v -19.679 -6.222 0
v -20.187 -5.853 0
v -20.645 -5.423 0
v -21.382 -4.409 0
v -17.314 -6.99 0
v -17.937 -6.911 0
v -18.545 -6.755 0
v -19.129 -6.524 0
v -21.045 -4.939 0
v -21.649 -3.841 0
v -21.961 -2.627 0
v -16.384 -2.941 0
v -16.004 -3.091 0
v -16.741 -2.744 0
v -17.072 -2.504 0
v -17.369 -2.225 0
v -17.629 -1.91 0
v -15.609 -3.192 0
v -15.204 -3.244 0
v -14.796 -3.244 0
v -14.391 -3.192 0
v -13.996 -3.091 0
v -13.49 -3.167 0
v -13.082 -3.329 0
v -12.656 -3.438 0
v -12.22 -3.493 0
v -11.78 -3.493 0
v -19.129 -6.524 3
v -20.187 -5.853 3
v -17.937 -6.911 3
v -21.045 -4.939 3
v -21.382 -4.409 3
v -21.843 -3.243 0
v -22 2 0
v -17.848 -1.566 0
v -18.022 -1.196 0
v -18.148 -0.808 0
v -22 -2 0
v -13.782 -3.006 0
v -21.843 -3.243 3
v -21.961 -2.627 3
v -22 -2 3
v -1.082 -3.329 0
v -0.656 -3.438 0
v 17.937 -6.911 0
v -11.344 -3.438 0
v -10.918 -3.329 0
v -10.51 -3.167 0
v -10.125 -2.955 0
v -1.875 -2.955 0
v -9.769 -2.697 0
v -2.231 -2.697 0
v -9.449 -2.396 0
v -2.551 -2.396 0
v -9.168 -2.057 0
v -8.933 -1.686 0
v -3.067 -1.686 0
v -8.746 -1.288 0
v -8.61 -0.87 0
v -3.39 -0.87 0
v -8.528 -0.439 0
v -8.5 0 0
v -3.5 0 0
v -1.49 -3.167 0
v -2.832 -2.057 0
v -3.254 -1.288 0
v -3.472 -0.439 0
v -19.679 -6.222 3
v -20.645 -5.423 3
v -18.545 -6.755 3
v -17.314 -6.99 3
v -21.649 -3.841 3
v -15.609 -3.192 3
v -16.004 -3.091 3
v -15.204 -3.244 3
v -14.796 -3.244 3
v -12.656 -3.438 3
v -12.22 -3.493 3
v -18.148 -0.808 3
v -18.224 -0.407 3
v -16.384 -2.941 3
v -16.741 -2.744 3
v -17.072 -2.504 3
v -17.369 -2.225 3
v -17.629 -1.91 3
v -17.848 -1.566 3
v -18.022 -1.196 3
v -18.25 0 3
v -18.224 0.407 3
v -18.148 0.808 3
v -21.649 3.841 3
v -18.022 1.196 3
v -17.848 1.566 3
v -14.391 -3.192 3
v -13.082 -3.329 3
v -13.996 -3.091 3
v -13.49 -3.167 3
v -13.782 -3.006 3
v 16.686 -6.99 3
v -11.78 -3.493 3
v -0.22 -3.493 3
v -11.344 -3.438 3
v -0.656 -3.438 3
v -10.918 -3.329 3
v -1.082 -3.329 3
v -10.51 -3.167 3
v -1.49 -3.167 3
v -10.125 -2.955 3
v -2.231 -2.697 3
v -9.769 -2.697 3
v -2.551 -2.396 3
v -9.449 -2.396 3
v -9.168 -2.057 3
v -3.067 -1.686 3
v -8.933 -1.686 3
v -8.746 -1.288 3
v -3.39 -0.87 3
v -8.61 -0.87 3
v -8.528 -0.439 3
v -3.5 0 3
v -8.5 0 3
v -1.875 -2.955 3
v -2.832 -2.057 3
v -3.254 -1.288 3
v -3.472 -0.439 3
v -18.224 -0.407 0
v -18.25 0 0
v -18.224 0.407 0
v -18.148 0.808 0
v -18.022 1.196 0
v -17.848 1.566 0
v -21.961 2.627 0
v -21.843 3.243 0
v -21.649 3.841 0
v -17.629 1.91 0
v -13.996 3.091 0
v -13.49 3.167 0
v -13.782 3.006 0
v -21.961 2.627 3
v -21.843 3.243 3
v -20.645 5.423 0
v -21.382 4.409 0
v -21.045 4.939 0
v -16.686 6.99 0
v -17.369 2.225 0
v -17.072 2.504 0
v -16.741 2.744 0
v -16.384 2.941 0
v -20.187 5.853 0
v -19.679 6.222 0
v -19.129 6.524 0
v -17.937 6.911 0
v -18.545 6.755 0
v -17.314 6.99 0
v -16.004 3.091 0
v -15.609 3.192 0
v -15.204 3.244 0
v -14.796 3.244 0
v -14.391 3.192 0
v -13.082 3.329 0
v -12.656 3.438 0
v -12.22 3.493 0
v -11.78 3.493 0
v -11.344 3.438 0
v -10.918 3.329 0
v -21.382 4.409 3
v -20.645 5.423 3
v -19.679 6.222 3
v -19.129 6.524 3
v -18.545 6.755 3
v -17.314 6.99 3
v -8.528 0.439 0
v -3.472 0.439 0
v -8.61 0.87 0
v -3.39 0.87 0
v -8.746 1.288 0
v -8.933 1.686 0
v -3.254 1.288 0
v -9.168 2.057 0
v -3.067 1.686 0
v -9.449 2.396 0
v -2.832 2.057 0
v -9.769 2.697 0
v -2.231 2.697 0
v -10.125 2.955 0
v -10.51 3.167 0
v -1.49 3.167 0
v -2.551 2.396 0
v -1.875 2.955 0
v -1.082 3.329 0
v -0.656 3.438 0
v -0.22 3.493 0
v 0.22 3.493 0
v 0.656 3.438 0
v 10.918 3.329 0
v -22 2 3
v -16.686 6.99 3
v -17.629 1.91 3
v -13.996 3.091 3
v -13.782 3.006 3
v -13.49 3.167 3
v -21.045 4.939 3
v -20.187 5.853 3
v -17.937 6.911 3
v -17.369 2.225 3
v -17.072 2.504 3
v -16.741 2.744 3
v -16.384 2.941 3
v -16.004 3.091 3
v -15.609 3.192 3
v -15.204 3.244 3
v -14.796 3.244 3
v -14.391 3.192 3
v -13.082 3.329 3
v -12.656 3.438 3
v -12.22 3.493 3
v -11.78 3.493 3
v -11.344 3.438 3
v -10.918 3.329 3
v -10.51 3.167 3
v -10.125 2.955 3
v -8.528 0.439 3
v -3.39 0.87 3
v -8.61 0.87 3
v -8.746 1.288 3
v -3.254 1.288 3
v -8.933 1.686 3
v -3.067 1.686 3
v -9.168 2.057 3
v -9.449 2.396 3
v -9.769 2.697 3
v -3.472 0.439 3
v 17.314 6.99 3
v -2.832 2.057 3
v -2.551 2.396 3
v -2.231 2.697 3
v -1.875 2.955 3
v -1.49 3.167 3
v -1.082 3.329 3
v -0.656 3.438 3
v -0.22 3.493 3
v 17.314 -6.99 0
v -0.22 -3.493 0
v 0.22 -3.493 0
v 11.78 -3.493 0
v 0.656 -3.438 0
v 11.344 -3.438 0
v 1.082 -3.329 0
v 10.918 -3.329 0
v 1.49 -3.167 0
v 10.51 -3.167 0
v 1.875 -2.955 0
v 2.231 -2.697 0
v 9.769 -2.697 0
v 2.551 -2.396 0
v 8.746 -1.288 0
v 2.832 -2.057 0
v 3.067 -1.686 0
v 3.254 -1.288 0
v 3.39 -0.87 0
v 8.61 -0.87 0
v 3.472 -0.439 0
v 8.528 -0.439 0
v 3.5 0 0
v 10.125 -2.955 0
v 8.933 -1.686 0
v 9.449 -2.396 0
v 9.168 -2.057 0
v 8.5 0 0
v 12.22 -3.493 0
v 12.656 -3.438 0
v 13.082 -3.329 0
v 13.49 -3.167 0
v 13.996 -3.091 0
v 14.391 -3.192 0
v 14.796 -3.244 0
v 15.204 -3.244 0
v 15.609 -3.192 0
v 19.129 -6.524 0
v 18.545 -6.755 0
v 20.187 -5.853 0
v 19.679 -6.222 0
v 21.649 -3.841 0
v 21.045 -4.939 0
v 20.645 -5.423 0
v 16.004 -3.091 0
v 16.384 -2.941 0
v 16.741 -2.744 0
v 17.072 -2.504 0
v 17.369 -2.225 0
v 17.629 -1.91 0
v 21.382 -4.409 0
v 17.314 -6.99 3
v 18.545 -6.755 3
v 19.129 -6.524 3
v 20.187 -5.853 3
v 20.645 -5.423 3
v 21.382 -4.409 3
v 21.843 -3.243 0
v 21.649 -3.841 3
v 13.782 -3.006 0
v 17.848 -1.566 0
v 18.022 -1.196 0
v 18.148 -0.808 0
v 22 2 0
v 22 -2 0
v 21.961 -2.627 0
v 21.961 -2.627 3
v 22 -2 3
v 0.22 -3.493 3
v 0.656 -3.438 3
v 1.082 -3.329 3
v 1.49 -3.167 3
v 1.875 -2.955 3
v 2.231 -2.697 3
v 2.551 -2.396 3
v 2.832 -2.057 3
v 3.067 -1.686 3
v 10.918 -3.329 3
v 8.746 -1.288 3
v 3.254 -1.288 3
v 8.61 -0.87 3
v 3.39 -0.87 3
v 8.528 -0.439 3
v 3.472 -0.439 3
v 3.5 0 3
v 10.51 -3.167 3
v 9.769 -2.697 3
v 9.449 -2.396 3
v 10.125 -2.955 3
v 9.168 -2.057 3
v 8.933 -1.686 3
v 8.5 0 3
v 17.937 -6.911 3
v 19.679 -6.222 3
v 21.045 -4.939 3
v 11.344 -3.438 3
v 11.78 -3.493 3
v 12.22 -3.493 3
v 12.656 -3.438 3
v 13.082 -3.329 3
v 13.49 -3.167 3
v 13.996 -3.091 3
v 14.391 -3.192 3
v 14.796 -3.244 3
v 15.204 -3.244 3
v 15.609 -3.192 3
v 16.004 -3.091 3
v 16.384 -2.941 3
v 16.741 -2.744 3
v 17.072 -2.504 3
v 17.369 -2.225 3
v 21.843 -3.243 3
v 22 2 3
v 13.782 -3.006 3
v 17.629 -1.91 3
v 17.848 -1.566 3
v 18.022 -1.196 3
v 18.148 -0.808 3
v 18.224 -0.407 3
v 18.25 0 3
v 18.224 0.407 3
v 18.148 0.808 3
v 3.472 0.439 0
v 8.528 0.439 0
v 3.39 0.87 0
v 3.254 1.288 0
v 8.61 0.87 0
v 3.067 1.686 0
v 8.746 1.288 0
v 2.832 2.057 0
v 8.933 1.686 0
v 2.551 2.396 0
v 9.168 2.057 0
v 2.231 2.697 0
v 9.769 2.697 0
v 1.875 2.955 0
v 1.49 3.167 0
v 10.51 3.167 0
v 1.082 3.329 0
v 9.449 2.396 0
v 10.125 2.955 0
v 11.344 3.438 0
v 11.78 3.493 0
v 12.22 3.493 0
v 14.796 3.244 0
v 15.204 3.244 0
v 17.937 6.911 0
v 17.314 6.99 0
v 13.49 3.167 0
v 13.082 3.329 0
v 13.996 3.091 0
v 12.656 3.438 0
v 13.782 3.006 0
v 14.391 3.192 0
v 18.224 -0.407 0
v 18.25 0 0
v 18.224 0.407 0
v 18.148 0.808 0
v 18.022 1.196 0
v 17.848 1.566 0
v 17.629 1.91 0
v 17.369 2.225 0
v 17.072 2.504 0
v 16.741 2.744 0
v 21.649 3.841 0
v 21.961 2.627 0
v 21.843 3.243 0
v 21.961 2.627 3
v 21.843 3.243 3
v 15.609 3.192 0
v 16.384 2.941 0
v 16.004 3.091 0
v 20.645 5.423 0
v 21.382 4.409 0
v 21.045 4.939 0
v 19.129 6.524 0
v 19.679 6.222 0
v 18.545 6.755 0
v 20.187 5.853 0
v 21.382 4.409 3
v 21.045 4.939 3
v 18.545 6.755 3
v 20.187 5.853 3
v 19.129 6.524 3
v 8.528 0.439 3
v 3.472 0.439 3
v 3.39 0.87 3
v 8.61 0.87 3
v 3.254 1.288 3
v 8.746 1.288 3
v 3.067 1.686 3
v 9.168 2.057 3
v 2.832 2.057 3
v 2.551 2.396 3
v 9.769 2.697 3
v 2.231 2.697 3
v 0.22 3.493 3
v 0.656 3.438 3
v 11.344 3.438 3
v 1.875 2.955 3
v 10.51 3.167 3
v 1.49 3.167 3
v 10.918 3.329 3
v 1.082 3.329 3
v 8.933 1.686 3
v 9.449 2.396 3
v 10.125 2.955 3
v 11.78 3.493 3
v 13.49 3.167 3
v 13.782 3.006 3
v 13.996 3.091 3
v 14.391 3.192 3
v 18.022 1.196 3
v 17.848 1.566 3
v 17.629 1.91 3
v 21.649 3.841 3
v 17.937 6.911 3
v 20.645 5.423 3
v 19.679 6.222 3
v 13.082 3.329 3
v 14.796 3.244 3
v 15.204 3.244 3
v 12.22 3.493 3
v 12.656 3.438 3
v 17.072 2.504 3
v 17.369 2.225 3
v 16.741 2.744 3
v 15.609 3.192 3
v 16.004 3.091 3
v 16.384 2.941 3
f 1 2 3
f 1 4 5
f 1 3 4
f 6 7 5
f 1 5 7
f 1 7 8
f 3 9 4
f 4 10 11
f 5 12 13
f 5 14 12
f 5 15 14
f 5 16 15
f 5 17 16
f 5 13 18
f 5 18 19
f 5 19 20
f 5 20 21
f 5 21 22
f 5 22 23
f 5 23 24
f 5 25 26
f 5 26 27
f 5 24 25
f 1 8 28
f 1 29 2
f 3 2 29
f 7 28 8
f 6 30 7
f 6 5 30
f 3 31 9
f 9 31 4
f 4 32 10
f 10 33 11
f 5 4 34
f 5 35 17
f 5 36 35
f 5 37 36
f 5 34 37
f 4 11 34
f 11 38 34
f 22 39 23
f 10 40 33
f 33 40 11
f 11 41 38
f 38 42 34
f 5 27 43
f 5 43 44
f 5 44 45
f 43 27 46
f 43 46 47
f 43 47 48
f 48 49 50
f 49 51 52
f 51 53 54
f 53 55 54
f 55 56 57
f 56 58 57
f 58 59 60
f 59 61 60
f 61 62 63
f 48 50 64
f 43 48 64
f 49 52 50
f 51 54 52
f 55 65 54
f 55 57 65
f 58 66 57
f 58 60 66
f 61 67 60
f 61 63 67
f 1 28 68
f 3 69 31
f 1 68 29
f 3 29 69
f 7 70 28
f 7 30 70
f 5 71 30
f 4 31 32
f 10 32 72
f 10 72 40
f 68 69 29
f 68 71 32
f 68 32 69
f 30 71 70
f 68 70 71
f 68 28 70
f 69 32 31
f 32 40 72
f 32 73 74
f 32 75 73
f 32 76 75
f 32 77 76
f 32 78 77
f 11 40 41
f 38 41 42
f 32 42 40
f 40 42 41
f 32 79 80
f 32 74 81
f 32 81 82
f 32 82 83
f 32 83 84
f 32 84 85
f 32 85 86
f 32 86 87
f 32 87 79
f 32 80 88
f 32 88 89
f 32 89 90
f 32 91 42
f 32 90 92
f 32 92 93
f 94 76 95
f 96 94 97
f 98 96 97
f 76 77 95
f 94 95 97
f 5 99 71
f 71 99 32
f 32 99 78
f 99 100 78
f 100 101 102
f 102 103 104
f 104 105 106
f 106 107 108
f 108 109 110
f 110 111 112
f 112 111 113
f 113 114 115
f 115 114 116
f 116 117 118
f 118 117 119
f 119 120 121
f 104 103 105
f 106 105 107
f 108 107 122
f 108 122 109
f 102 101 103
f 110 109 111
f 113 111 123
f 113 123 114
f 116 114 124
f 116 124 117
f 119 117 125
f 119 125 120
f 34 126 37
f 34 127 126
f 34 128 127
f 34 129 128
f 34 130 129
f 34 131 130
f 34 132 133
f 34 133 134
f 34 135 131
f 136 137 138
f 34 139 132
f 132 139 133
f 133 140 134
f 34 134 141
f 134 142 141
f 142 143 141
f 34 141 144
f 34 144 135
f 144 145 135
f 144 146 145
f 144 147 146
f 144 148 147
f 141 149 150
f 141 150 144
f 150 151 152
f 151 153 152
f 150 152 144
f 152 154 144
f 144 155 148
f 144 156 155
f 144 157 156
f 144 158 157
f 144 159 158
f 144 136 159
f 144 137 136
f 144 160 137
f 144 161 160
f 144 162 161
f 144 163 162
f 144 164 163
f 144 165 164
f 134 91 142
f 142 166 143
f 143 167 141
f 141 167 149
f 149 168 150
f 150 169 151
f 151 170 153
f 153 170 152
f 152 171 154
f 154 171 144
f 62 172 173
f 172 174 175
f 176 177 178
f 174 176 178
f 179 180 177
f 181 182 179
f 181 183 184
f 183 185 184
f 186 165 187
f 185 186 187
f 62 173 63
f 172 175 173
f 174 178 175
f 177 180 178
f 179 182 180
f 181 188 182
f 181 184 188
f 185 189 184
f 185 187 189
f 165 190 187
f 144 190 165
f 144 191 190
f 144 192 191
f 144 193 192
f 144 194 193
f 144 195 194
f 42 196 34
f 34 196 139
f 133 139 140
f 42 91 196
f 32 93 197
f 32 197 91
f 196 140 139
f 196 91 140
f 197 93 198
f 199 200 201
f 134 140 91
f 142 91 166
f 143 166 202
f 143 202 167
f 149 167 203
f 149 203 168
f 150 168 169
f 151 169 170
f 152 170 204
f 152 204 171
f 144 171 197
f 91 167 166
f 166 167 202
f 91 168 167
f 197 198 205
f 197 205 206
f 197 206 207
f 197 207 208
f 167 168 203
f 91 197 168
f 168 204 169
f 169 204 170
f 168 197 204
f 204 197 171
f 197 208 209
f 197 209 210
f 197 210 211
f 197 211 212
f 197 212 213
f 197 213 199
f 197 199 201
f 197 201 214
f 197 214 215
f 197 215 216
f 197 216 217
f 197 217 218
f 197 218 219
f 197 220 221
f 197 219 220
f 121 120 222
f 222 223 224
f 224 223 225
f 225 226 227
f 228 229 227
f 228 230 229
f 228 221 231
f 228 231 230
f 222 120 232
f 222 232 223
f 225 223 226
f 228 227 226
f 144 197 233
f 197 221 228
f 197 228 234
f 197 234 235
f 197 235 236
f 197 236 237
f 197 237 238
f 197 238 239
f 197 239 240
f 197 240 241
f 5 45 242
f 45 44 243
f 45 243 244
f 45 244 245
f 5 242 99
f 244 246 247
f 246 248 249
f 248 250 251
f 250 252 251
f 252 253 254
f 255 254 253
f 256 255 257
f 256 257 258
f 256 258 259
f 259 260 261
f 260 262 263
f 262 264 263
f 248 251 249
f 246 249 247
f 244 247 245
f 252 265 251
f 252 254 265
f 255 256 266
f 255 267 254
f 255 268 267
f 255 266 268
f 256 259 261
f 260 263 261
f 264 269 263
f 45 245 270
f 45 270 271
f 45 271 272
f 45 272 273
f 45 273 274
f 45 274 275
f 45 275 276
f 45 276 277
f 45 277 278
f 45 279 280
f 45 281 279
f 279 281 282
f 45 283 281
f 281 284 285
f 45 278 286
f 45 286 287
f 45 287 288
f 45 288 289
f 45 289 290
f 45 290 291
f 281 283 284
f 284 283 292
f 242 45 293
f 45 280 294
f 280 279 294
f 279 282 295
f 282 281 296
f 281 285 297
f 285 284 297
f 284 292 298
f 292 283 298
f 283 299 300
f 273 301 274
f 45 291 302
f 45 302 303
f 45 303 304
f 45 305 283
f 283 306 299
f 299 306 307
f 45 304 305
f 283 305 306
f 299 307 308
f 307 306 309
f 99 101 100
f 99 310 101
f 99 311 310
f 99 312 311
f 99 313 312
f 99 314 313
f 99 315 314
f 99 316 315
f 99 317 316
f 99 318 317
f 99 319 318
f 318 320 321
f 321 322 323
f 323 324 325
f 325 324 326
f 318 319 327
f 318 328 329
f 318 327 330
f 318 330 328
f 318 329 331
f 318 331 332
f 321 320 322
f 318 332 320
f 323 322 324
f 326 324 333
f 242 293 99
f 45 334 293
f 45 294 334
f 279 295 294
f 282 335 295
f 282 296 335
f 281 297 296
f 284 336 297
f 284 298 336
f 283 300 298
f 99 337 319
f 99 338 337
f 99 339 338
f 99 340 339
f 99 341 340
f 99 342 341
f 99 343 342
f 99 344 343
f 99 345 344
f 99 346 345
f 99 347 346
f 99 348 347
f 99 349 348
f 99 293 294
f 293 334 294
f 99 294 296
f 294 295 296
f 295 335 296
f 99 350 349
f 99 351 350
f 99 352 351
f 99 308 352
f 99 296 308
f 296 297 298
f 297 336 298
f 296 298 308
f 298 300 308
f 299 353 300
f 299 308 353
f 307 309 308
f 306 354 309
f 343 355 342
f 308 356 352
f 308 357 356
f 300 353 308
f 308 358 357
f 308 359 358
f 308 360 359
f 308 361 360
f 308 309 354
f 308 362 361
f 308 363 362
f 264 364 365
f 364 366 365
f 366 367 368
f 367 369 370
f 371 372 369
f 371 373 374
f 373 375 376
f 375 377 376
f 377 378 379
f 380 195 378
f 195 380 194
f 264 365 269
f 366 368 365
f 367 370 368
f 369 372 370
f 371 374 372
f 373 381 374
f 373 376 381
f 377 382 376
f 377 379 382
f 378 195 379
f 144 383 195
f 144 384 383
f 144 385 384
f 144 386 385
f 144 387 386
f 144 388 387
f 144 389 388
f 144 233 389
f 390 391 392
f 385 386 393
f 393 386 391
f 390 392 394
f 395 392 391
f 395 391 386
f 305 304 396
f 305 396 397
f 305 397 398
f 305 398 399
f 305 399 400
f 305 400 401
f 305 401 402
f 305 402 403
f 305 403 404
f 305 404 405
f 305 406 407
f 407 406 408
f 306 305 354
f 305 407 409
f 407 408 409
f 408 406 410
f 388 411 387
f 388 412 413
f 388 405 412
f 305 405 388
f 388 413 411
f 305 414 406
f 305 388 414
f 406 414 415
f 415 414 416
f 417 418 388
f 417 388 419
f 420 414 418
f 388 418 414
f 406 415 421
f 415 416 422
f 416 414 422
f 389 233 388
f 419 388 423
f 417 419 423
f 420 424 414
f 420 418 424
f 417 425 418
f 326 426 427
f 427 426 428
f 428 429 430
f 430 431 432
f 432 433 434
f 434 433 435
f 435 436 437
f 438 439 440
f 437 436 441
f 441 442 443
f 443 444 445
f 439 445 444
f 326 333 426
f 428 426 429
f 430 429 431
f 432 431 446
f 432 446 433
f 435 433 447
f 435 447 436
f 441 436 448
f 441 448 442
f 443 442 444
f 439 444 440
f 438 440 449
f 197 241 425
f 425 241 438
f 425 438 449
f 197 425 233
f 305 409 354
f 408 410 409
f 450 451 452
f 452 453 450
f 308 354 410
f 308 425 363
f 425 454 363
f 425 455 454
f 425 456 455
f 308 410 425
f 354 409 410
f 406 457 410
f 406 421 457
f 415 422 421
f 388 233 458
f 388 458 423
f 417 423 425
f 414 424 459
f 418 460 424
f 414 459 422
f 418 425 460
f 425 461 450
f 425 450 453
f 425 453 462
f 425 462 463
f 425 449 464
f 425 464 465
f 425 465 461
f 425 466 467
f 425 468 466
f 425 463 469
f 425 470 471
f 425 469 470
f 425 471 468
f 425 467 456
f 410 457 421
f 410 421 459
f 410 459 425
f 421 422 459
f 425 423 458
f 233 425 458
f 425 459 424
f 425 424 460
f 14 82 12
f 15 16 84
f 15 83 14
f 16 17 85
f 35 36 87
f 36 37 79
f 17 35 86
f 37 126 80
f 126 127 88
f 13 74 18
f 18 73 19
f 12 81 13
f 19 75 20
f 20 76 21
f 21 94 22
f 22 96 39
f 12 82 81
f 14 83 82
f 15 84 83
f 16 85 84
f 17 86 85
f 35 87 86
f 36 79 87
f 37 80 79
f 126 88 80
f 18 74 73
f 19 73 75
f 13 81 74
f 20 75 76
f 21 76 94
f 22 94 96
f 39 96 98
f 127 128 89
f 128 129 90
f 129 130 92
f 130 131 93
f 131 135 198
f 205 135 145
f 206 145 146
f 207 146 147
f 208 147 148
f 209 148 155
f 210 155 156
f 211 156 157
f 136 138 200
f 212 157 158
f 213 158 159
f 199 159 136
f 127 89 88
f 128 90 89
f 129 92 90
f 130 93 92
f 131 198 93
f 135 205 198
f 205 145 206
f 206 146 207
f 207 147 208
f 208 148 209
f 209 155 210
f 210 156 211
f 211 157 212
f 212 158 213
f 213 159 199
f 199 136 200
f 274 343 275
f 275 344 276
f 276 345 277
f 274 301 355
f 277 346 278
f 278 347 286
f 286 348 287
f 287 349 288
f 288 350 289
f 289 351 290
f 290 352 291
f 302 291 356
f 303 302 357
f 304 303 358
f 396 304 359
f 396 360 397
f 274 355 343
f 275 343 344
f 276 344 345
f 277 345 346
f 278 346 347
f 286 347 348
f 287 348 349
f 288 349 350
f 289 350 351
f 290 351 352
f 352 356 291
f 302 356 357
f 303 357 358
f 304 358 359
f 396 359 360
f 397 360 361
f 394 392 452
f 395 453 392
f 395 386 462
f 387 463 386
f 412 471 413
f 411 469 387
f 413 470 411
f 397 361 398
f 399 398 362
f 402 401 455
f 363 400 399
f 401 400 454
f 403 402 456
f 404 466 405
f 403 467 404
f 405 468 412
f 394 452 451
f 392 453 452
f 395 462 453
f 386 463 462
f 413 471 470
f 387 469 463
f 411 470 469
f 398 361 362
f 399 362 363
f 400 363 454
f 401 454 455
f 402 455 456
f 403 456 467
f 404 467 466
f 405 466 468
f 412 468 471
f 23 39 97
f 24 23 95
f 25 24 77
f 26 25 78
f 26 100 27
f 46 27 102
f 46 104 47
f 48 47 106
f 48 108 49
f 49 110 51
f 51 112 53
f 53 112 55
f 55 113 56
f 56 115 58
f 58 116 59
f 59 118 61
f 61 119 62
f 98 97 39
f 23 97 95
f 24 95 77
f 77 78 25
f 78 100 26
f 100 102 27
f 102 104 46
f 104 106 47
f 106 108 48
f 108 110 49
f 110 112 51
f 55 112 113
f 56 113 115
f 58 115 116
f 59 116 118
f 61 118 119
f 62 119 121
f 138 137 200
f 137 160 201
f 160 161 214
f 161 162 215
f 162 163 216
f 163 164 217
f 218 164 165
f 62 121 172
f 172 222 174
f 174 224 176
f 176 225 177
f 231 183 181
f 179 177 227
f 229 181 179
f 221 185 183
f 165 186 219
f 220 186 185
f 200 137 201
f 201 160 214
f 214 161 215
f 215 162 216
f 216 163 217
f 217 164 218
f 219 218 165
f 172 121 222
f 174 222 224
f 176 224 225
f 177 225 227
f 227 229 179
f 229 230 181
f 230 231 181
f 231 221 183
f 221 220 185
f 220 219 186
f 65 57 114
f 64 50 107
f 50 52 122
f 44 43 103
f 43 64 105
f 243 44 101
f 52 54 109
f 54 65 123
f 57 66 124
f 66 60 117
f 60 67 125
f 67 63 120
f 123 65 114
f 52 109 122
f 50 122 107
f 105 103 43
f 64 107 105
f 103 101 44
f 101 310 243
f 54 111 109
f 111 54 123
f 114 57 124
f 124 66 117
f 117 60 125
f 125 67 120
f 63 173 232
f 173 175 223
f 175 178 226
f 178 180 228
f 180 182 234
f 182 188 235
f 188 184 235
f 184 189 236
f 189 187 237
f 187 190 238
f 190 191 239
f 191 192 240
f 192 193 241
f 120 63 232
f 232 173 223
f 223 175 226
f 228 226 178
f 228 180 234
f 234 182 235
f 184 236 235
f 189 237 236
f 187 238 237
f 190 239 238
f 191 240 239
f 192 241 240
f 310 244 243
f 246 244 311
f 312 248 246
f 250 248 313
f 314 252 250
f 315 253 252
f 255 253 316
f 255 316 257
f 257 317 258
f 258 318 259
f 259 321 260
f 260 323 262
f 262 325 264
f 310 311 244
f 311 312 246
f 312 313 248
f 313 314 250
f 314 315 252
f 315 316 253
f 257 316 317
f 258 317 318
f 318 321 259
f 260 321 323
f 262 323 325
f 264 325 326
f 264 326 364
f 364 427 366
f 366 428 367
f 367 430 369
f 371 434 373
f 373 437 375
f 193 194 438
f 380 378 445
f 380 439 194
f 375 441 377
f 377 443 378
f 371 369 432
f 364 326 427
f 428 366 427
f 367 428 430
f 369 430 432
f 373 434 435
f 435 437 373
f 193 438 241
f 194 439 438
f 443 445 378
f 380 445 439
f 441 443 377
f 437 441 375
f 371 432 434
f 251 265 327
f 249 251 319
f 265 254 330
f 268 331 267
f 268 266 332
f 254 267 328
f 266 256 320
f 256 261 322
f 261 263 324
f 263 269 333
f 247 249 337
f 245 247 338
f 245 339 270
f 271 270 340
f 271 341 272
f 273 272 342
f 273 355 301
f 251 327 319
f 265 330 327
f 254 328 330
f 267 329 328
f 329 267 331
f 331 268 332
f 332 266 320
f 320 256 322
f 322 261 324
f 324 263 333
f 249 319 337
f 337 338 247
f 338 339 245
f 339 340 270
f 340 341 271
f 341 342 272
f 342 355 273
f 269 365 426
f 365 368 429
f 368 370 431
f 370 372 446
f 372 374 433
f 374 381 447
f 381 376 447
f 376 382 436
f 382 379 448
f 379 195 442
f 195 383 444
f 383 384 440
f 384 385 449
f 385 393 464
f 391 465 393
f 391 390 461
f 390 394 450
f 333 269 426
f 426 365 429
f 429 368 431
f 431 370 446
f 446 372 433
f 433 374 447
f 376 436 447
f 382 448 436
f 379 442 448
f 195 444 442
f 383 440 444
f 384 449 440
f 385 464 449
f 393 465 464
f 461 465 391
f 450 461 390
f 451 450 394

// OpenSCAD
$fn = 50;

difference() {
	union() {
		hull() {
			translate(v = [-17.0, 2.0, 0]) {
				cylinder(h = 3, r = 5);
			}
			translate(v = [17.0, 2.0, 0]) {
				cylinder(h = 3, r = 5);
			}
			translate(v = [-17.0, -2.0, 0]) {
				cylinder(h = 3, r = 5);
			}
			translate(v = [17.0, -2.0, 0]) {
				cylinder(h = 3, r = 5);
			}
		}
	}
	union() {
		translate(v = [-15.0, 0.0, -100.0]) {
			cylinder(h = 200, r = 3.25);
		}
		translate(v = [15.0, 0.0, -100.0]) {
			cylinder(h = 200, r = 3.25);
		}
		translate(v = [-15.0, 0.0, -100.0]) {
			cylinder(h = 200, r = 1.8);
		}
		translate(v = [15.0, 0.0, -100.0]) {
			cylinder(h = 200, r = 1.8);
		}
		translate(v = [-12.0, 0, 0.0]) {
			cylinder(h = 3, r = 3.5);
		}
		cylinder(h = 3, r = 3.5);
		translate(v = [12.0, 0, 0.0]) {
			cylinder(h = 3, r = 3.5);
		}
	}
}
